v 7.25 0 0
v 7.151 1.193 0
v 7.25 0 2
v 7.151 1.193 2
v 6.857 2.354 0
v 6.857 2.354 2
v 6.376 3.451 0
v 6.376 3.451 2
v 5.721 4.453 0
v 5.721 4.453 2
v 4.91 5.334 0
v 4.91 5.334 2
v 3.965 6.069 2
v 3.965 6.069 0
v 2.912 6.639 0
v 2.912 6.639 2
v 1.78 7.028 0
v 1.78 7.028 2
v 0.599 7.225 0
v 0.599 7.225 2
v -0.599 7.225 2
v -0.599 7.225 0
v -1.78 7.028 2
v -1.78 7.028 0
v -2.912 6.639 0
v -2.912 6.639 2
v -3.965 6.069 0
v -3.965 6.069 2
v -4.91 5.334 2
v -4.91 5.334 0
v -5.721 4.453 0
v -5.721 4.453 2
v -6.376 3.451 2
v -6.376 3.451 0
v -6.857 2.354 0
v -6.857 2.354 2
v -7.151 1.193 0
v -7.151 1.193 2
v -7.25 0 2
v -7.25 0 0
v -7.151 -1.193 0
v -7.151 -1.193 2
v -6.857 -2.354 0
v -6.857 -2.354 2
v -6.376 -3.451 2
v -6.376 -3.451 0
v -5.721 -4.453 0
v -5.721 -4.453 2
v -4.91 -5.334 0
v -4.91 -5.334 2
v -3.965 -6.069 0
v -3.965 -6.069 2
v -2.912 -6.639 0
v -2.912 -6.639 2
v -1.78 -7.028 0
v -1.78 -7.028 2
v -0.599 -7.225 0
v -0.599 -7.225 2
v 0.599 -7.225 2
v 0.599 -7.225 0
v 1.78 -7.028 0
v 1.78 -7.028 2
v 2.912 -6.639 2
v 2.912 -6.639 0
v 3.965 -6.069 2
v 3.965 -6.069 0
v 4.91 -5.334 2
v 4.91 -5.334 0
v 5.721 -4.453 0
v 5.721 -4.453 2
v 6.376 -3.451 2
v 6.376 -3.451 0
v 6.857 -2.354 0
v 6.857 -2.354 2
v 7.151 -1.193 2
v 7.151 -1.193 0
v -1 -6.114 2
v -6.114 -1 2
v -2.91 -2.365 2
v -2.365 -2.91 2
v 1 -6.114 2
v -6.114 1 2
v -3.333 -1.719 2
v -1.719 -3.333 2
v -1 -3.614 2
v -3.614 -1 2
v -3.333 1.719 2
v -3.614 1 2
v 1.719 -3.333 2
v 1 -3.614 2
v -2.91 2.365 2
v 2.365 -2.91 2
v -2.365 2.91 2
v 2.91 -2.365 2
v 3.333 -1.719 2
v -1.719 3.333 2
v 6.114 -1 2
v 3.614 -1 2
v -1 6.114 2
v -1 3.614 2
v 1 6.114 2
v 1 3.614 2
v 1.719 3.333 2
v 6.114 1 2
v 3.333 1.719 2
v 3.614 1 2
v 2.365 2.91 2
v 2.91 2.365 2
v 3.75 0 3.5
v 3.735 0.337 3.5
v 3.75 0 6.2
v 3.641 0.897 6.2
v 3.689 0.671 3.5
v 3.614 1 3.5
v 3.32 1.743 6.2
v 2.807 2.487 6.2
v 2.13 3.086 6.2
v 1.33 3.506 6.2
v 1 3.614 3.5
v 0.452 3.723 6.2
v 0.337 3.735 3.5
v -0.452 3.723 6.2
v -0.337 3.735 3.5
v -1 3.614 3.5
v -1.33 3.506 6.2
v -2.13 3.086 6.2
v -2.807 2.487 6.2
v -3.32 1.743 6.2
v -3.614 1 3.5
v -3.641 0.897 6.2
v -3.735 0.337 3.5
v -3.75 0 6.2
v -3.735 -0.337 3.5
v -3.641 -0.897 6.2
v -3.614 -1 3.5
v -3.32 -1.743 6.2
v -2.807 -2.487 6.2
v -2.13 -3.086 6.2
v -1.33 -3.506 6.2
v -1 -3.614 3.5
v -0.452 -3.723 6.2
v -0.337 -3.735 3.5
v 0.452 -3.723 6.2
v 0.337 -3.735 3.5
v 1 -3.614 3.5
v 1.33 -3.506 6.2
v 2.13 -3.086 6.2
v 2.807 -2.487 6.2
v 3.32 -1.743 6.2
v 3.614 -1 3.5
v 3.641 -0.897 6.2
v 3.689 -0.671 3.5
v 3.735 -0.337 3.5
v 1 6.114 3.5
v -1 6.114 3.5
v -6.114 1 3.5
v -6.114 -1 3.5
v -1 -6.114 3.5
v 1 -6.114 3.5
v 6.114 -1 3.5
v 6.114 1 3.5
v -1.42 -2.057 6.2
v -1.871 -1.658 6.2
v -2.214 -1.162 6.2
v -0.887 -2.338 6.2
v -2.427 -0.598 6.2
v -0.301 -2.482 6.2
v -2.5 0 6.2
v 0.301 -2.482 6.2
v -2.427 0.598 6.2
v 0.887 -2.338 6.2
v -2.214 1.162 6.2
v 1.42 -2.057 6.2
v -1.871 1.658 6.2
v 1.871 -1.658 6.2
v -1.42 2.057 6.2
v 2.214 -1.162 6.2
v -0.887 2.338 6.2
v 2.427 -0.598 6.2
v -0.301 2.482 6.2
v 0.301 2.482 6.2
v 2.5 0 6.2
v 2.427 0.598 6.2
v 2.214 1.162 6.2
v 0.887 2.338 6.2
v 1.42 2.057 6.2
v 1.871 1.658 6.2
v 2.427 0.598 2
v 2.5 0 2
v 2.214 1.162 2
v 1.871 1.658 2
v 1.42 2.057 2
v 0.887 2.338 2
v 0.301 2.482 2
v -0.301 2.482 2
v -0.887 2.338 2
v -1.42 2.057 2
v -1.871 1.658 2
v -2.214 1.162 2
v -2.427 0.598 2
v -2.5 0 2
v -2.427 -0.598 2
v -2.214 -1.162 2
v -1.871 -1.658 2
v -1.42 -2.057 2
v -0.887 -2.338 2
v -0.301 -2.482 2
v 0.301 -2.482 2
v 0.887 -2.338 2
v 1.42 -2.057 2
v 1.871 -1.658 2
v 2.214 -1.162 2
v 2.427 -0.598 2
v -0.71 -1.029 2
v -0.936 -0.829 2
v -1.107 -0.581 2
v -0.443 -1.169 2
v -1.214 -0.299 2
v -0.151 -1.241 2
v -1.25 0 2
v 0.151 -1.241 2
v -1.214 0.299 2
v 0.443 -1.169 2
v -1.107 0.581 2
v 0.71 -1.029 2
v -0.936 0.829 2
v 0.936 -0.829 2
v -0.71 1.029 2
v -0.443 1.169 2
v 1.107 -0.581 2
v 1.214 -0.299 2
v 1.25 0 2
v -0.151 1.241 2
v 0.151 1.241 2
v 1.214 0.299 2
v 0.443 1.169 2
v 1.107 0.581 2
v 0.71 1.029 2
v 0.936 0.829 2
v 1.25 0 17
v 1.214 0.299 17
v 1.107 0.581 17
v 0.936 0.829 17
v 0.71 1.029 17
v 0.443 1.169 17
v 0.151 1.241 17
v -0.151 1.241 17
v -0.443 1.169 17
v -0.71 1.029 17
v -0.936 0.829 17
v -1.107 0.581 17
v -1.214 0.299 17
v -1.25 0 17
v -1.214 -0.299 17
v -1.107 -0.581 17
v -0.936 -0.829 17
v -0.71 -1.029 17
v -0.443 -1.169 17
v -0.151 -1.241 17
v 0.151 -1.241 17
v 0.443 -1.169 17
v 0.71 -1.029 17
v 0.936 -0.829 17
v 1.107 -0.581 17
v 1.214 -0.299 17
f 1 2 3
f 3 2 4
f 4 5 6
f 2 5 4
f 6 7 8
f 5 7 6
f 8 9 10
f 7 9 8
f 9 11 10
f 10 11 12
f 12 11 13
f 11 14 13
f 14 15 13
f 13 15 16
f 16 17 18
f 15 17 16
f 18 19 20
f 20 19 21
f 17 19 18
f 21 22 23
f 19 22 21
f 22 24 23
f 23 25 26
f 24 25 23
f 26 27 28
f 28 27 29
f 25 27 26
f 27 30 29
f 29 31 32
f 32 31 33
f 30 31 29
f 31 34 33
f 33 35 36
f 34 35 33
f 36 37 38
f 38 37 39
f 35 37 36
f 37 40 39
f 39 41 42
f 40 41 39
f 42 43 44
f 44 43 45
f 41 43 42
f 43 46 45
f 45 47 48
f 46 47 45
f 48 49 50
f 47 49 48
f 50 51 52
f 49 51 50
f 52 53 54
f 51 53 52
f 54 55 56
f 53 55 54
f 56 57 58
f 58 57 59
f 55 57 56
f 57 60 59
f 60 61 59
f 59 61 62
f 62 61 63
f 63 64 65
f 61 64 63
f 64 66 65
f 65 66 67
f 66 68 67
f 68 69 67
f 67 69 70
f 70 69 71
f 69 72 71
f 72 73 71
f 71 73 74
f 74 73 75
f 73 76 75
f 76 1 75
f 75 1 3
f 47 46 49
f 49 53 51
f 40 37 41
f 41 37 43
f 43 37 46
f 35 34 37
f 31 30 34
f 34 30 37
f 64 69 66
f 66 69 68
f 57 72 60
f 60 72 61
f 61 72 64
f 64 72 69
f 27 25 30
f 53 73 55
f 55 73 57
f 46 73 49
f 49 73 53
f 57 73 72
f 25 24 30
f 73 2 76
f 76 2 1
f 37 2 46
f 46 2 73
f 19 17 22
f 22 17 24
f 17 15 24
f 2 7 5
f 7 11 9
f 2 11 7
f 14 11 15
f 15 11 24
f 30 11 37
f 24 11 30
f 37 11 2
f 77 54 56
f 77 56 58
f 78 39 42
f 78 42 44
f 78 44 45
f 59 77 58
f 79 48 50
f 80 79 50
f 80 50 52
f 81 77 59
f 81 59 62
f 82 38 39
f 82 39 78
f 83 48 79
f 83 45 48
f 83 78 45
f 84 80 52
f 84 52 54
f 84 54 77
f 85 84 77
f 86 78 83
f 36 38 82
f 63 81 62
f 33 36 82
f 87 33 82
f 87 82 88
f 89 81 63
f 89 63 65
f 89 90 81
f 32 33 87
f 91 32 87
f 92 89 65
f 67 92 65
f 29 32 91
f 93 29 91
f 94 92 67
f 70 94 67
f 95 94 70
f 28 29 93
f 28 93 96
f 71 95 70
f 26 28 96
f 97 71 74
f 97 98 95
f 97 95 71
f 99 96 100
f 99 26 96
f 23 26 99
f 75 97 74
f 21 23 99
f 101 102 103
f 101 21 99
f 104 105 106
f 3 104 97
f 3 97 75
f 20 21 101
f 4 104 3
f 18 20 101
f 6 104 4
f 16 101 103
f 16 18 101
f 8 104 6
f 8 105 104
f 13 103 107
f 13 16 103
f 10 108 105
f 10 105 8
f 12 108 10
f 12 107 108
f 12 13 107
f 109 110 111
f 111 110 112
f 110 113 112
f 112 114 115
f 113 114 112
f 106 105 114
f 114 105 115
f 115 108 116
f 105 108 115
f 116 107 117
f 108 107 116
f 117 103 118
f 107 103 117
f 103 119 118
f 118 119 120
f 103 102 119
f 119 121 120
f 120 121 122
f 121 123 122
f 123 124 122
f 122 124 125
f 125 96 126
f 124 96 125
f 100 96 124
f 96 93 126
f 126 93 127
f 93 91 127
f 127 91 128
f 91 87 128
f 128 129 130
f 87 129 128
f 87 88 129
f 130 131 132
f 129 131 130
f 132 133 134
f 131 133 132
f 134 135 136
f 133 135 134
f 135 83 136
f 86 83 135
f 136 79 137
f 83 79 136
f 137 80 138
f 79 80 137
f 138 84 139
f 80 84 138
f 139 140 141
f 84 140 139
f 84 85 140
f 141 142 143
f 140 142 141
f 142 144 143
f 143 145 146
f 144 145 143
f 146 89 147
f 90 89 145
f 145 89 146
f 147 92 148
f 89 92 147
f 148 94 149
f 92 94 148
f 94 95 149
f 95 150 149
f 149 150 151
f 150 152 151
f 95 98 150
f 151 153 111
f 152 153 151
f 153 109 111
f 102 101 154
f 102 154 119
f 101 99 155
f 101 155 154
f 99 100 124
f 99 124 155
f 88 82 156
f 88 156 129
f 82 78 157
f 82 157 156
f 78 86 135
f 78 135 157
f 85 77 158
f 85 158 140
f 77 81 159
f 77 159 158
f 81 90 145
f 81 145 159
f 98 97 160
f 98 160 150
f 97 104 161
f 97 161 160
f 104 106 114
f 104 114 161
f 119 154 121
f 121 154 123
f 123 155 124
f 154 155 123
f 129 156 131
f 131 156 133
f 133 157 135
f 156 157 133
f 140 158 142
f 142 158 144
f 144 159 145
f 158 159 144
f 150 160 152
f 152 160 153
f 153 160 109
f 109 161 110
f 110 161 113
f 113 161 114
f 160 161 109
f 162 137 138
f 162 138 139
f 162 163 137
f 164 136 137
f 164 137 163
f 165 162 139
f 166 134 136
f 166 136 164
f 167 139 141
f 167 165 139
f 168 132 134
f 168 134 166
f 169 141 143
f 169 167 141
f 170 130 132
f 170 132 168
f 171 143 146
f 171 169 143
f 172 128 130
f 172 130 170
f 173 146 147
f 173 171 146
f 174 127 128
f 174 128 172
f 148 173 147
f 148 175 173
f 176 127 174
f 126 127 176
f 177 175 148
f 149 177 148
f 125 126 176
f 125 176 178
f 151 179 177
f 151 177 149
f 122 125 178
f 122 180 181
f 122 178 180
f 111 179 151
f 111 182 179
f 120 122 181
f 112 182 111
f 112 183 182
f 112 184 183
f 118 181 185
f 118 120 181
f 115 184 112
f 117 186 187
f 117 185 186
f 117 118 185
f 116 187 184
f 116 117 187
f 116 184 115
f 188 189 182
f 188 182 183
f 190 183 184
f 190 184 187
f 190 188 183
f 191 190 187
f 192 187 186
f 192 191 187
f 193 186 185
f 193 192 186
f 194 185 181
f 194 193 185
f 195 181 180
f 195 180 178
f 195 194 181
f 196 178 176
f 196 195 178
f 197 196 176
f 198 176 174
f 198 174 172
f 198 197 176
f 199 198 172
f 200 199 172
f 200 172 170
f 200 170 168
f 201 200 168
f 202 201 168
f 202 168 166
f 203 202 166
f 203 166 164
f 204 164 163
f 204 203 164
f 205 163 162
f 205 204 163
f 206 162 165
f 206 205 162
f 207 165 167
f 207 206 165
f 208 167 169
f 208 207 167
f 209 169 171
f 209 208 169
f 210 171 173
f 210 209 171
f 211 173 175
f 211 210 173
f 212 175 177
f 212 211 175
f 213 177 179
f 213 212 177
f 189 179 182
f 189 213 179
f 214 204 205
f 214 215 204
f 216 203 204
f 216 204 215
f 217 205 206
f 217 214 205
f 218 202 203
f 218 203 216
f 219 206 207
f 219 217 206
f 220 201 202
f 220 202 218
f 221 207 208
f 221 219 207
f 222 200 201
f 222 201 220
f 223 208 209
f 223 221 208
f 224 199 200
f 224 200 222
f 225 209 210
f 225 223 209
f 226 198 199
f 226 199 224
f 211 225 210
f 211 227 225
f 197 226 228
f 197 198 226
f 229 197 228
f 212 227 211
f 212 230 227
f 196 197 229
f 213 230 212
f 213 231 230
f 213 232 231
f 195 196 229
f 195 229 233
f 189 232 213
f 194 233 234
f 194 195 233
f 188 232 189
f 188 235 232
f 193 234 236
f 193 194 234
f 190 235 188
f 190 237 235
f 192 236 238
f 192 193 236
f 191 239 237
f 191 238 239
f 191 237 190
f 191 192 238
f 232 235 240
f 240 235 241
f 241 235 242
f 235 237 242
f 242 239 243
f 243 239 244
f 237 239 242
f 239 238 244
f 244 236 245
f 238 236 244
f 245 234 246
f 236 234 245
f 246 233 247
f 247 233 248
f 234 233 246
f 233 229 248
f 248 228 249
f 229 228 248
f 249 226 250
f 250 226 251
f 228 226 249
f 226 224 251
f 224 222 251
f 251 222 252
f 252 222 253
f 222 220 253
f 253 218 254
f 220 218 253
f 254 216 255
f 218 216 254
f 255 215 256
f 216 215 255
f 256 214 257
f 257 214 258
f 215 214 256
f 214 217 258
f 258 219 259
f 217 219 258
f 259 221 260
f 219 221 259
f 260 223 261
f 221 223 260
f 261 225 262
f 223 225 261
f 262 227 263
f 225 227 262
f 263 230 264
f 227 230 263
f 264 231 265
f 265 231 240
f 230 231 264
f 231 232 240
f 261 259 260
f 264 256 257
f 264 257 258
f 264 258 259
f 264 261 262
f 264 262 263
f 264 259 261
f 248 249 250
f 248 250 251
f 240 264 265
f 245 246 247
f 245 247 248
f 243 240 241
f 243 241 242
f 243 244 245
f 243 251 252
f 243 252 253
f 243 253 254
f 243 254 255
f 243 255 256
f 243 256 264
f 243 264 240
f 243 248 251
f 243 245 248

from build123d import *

# Parameters (mm, degrees)
SKETCH_R           = 7.25
PAD_DEPTH          = 2
SKETCH001_R        = 3.75
SKETCH001_R_2      = 2.5
PAD001_DEPTH       = 4.2
SKETCH002_R        = 1.25
PAD002_DEPTH       = 15
PAD003_DEPTH       = 1.5
POLARPATTERN_COUNT = 4


with BuildPart() as part:
    # Sketch → Pad (new body)
    with BuildSketch(Plane.XY):
        Circle(SKETCH_R)
    extrude(amount=PAD_DEPTH)

    # Sketch001 (on Face3 of Pad) → Pad001 (join)
    with BuildSketch(Plane.XY.offset(2)):
        Circle(SKETCH001_R)
        Circle(SKETCH001_R_2, mode=Mode.SUBTRACT)
    extrude(amount=PAD001_DEPTH)

    # Sketch002 (on Face7 of Pad001) → Pad002 (join)
    with BuildSketch(Plane.XY.offset(2)):
        Circle(SKETCH002_R)
    extrude(amount=PAD002_DEPTH)

    # Sketch003 (on Face3 of Pad002) → Pad003 (join)
    with BuildSketch(Plane.XY.offset(2)):
        with BuildLine():
            Line((-1, 3.614208), (-1, 6.114208))
            Line((-1, 6.114208), (1, 6.114208))
            Line((1, 6.114208), (1, 3.614208))
            ThreePointArc((1, 3.614208), (0, 3.75), (-1, 3.614208))
        make_face()
    pad003 = extrude(amount=PAD003_DEPTH)

    # PolarPattern: Pad003 ×4 about axis
    polarpattern_axis = Axis((0, 0, 2), (0, 0, 1))
    for i in range(1, POLARPATTERN_COUNT):
        add(pad003.rotate(polarpattern_axis, i * 360 / POLARPATTERN_COUNT))


solid = part.part
